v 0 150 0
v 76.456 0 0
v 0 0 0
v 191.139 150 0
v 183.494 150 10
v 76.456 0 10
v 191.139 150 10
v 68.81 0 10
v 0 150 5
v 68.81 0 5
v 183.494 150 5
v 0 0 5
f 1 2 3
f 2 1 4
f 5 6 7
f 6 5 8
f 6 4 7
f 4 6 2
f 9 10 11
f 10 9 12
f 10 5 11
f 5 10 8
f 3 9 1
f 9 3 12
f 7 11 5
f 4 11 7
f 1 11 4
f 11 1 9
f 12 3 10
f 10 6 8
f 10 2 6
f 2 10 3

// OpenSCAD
module base() {
    rotate(a=-52.6, v=[1, 0, 0])
    cube([10, 800, 800]);
}

translate([0, -100, 10])
rotate(a=90, v=[0, 1, 0])
intersection() {
    difference() {
        base();
        translate([-5, 10, 0])
        base();
        translate([-100, -10, -1000])
        cube([200, 2000, 1000]);
    }
    translate([-20, 100, -10])
    cube([50, 150, 1000]);
}
